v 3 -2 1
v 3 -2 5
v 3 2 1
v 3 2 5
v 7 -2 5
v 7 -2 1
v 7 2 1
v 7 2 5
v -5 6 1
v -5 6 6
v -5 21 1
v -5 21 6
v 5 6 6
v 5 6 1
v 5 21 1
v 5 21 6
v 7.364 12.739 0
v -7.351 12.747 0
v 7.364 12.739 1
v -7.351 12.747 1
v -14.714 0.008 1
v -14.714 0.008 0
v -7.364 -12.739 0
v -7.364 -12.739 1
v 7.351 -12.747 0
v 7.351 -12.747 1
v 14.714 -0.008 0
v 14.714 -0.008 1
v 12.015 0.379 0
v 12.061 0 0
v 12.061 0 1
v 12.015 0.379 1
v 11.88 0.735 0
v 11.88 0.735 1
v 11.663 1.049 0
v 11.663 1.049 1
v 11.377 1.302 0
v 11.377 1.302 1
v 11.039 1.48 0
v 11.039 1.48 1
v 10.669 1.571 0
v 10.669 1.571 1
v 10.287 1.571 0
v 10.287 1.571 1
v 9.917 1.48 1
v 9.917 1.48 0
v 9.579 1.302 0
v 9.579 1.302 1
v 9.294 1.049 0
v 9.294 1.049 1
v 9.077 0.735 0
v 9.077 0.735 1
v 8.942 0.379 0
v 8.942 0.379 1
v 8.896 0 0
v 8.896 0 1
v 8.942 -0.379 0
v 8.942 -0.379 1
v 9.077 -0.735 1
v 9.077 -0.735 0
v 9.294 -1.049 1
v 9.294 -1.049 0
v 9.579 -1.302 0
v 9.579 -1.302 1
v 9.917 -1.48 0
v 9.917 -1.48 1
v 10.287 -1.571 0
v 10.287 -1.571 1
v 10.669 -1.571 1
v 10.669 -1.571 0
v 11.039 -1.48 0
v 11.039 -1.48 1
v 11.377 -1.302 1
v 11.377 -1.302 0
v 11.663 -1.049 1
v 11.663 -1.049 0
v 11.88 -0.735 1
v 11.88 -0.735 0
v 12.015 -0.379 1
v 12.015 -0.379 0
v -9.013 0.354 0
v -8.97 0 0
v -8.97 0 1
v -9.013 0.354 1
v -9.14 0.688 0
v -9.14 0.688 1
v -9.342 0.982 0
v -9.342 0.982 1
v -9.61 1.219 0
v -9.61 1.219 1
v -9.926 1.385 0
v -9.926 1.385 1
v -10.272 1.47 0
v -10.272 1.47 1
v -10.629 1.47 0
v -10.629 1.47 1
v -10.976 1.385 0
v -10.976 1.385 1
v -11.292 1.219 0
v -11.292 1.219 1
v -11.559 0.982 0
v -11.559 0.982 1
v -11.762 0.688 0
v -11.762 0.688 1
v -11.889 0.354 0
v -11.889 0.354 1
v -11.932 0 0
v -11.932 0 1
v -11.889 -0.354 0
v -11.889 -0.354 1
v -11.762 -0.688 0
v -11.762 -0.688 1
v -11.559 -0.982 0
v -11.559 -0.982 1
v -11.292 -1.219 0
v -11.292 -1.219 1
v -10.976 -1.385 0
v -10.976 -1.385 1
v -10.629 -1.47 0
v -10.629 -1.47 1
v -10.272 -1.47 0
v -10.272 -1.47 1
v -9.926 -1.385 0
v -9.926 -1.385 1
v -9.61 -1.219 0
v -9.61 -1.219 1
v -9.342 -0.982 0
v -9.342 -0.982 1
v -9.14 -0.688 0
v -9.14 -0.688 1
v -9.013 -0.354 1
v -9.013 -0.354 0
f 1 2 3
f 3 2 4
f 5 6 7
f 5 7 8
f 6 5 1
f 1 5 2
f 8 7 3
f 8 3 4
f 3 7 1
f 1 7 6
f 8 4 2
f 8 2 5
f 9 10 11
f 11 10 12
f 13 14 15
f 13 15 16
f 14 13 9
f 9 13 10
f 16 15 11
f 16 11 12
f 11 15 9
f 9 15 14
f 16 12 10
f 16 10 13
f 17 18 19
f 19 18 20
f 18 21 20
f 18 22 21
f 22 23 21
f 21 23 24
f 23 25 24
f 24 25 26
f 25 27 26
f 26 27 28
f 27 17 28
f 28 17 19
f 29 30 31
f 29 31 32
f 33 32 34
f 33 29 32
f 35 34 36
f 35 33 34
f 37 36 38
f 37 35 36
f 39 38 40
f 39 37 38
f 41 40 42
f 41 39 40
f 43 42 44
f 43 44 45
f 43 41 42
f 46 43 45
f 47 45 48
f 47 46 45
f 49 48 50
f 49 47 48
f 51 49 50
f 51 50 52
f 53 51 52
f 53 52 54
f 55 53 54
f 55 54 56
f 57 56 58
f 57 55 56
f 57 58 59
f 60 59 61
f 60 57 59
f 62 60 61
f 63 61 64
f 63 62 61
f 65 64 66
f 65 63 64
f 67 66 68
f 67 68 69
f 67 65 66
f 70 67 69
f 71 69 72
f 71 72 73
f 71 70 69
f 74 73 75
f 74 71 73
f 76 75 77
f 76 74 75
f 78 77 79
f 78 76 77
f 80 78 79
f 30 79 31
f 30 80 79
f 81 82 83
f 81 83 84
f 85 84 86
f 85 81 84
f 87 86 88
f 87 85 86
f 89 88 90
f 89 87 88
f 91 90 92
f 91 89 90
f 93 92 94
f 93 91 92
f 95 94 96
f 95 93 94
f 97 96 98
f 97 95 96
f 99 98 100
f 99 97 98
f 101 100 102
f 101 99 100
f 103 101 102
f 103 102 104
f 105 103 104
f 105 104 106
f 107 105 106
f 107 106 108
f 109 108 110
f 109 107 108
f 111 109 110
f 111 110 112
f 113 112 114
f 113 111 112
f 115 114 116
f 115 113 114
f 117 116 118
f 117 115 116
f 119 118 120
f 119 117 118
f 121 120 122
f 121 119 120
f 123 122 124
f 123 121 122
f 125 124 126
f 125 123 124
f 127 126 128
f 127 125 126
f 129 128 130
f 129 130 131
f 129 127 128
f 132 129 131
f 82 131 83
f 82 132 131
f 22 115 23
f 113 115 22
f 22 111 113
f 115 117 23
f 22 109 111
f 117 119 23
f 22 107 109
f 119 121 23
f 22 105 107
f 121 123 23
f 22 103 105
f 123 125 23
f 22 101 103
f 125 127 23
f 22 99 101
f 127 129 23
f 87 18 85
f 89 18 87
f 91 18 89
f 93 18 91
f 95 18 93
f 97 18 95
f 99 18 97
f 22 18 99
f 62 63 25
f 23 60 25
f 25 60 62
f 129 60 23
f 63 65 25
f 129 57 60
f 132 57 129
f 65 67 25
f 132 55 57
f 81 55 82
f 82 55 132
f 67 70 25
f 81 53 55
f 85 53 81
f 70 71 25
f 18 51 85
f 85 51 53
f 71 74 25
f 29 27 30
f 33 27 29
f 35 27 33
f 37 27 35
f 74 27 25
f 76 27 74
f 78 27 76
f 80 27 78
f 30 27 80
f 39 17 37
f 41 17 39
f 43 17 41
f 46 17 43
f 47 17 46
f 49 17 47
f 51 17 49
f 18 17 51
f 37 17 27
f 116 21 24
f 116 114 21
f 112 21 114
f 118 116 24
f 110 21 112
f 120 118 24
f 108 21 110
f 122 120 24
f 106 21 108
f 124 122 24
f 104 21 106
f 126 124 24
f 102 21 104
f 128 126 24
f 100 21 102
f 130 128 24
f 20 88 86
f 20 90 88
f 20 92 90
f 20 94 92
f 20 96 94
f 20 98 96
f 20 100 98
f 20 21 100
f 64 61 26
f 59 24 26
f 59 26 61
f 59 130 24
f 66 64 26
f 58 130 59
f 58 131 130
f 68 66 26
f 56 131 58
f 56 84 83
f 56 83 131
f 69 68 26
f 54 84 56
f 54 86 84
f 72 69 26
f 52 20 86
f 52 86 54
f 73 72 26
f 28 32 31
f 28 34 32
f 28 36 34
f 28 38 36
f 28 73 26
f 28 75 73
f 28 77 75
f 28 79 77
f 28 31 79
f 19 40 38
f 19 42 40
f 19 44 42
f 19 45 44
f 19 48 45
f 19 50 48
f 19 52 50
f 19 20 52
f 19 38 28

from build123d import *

# Parameters (mm, degrees)
SKETCH_R     = 1.480824
SKETCH_R_2   = 1.582629
PAD_DEPTH    = 1
BOX_W        = 10
BOX_H        = 15
BOX_DEPTH    = 5
BOX001_W     = 4
BOX001_H     = 4
BOX001_DEPTH = 4


with BuildPart() as body_hexagon:
    # Sketch → Pad (new body)
    with BuildSketch(Plane.XY):
        Polygon((7.363772, 12.739325), (-7.350693, 12.746876), (-14.714465, 0.007551), (-7.363772, -12.739325), (7.350693, -12.746876), (14.714465, -0.007551), align=None)
        with Locations((-10.450803, 0)):
            Circle(SKETCH_R, mode=Mode.SUBTRACT)
        with Locations((10.478189, 0)):
            Circle(SKETCH_R_2, mode=Mode.SUBTRACT)
    extrude(amount=PAD_DEPTH)


with BuildPart() as vcc:
    # Box → Box (new body)
    with BuildSketch(Plane(origin=(-5, 6, 1), x_dir=(1, 0, 0), z_dir=(0, 0, 1))):
        with Locations((5, 7.5)):
            Rectangle(BOX_W, BOX_H)
    extrude(amount=BOX_DEPTH)


with BuildPart() as elemento1:
    # Box001 → Box001 (new body)
    with BuildSketch(Plane(origin=(3, -2, 1), x_dir=(1, 0, 0), z_dir=(0, 0, 1))):
        with Locations((2, 2)):
            Rectangle(BOX001_W, BOX001_H)
    extrude(amount=BOX001_DEPTH)


solid = Compound([body_hexagon.part, vcc.part, elemento1.part])
